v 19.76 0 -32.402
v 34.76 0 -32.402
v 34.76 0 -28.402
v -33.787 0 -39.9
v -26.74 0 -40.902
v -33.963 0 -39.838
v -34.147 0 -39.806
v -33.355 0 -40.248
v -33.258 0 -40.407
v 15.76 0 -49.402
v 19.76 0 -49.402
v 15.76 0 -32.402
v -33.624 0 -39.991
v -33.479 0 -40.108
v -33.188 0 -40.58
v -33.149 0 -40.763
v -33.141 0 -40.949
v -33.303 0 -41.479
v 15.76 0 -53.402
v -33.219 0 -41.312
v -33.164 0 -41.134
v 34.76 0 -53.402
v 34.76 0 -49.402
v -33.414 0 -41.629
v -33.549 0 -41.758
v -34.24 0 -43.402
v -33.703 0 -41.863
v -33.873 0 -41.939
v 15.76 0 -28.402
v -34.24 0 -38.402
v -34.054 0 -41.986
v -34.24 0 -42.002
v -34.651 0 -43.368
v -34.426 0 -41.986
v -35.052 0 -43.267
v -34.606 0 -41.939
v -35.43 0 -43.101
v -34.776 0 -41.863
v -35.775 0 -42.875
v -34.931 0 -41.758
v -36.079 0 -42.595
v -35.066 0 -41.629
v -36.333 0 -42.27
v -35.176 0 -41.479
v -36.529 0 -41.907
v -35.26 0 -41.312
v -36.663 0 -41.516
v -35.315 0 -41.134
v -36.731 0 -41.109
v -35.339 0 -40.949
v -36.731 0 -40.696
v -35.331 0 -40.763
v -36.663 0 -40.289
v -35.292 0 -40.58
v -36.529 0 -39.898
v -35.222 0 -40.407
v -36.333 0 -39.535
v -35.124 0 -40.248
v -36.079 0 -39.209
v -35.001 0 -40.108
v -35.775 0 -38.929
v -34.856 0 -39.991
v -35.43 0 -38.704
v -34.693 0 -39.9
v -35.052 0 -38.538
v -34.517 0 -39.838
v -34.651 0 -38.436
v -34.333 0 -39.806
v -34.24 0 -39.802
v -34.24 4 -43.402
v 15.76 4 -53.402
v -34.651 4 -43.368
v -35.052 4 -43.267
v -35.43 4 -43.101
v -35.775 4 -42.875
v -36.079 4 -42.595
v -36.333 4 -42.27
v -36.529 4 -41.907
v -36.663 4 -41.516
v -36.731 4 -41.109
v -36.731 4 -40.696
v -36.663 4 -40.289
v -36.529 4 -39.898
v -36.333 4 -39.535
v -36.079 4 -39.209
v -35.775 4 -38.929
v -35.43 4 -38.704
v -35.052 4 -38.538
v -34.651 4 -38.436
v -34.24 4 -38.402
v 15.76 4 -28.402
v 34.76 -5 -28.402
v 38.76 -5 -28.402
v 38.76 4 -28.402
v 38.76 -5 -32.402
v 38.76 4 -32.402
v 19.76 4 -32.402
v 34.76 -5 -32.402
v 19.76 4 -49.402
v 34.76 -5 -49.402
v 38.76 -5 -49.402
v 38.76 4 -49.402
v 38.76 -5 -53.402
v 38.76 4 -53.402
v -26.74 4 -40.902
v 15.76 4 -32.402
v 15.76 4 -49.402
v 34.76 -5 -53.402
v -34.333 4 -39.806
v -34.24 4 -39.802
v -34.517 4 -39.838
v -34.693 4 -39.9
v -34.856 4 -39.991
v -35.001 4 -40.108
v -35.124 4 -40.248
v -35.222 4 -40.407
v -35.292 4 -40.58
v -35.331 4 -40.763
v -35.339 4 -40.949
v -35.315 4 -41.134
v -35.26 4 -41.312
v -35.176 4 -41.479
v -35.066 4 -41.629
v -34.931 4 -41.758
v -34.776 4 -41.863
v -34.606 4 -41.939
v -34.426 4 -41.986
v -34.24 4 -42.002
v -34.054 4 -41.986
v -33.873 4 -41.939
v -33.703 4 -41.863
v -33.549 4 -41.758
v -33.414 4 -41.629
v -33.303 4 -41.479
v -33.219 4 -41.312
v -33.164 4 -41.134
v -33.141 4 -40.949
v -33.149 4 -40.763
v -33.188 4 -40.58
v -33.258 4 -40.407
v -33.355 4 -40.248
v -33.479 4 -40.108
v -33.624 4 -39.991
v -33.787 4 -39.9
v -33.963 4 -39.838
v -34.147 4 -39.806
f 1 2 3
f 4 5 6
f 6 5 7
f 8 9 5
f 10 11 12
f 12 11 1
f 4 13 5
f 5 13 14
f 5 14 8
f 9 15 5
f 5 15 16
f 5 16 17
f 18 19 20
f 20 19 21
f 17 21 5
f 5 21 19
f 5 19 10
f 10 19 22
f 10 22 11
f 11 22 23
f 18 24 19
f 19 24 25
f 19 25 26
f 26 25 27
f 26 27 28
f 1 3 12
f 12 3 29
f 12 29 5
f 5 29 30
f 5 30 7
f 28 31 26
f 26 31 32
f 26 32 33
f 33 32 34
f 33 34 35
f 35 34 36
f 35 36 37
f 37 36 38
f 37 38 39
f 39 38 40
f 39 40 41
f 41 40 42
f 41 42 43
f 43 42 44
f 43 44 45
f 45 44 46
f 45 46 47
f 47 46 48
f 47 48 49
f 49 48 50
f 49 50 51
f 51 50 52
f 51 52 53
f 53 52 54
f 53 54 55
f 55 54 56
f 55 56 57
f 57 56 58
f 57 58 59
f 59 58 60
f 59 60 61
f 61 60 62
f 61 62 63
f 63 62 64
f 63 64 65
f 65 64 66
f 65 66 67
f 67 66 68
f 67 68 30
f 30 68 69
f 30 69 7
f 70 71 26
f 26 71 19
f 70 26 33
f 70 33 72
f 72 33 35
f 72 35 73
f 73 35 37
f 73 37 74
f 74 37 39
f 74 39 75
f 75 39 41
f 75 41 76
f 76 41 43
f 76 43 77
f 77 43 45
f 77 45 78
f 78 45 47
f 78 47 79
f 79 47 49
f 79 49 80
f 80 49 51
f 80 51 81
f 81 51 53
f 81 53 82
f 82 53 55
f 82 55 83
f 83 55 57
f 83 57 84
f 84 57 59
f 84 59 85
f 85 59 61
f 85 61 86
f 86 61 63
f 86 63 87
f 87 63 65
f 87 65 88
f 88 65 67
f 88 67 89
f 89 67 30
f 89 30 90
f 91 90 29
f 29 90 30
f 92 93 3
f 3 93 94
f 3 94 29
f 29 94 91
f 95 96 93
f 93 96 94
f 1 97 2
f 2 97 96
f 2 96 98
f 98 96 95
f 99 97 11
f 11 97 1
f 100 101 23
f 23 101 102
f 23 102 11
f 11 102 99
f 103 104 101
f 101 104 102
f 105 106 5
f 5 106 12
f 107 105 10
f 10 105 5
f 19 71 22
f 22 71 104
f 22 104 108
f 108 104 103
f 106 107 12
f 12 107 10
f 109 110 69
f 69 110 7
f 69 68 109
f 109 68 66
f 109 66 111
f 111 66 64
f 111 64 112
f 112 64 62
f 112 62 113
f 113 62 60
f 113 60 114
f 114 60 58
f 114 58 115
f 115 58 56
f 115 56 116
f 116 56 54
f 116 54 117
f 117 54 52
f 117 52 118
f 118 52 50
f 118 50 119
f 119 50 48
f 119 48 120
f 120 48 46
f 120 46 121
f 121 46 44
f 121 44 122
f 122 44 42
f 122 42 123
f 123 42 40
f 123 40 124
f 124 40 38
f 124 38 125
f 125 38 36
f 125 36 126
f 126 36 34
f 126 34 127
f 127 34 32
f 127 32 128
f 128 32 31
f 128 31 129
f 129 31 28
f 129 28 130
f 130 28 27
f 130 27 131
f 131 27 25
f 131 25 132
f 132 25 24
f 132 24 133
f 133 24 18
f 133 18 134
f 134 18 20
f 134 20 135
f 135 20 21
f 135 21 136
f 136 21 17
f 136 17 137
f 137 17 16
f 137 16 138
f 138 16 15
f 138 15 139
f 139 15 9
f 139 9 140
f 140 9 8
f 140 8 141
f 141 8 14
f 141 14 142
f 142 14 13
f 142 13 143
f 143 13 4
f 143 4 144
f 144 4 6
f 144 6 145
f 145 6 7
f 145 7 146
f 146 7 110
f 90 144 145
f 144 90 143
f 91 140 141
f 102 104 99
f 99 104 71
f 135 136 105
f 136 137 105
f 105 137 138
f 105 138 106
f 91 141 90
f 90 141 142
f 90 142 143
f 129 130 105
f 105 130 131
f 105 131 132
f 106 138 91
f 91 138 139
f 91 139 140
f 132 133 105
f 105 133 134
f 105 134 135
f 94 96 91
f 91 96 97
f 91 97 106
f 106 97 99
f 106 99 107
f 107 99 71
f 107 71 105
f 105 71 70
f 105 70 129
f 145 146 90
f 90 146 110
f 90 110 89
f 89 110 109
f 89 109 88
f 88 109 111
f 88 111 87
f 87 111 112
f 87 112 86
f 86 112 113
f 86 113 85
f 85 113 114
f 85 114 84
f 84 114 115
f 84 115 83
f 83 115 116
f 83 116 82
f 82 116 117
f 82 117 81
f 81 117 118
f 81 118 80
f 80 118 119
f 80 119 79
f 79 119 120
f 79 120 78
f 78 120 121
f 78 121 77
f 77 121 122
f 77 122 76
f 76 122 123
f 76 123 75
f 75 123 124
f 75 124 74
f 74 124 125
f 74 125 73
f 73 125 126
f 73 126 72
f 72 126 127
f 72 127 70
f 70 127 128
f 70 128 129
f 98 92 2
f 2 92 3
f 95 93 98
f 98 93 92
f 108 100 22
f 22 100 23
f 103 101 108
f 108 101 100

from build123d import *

# Parameters (mm, degrees)
SKETCH1_R           = 1.1
BOSS_EXTRUDE1_DEPTH = 4
SKETCH2_W           = 4
SKETCH2_H           = 4
BOSS_EXTRUDE2_DEPTH = 5


with BuildPart() as part:
    # Sketch1 → Boss-Extrude1 (new body)
    with BuildSketch(Plane(origin=(0, 0, 0), x_dir=(1, 0, 0), z_dir=(0, 1, 0))):
        with BuildLine():
            Line((15.760200843, 53.402286132), (-34.239799157, 43.402286132))
            ThreePointArc((-34.239799157, 43.402286132), (-36.739799157, 40.902286132), (-34.239799157, 38.402286132))
            Line((-34.239799157, 38.402286132), (15.760200843, 28.402286132))
            Line((15.760200843, 28.402286132), (38.760200843, 28.402286132))
            Line((38.760200843, 28.402286132), (38.760200843, 32.402286132))
            Line((38.760200843, 32.402286132), (19.760200843, 32.402286132))
            Line((19.760200843, 32.402286132), (19.760200843, 49.402286132))
            Line((19.760200843, 49.402286132), (38.760200843, 49.402286132))
            Line((38.760200843, 49.402286132), (38.760200843, 53.402286132))
            Line((38.760200843, 53.402286132), (15.760200843, 53.402286132))
        make_face()
        Polygon((-26.739799157, 40.902286132), (15.760200843, 49.402286132), (15.760200843, 32.402286132), align=None, mode=Mode.SUBTRACT)
        with Locations((-34.239799157, 40.902286132)):
            Circle(SKETCH1_R, mode=Mode.SUBTRACT)
    extrude(amount=BOSS_EXTRUDE1_DEPTH)

    # Sketch2 → Boss-Extrude2 (add)
    with BuildSketch(Plane.XZ):
        with Locations((36.760200843, -30.402286132)):
            Rectangle(SKETCH2_W, SKETCH2_H)
        with Locations((36.760200843, -51.402286132)):
            Rectangle(SKETCH2_W, SKETCH2_H)
    extrude(amount=BOSS_EXTRUDE2_DEPTH)


solid = part.part
